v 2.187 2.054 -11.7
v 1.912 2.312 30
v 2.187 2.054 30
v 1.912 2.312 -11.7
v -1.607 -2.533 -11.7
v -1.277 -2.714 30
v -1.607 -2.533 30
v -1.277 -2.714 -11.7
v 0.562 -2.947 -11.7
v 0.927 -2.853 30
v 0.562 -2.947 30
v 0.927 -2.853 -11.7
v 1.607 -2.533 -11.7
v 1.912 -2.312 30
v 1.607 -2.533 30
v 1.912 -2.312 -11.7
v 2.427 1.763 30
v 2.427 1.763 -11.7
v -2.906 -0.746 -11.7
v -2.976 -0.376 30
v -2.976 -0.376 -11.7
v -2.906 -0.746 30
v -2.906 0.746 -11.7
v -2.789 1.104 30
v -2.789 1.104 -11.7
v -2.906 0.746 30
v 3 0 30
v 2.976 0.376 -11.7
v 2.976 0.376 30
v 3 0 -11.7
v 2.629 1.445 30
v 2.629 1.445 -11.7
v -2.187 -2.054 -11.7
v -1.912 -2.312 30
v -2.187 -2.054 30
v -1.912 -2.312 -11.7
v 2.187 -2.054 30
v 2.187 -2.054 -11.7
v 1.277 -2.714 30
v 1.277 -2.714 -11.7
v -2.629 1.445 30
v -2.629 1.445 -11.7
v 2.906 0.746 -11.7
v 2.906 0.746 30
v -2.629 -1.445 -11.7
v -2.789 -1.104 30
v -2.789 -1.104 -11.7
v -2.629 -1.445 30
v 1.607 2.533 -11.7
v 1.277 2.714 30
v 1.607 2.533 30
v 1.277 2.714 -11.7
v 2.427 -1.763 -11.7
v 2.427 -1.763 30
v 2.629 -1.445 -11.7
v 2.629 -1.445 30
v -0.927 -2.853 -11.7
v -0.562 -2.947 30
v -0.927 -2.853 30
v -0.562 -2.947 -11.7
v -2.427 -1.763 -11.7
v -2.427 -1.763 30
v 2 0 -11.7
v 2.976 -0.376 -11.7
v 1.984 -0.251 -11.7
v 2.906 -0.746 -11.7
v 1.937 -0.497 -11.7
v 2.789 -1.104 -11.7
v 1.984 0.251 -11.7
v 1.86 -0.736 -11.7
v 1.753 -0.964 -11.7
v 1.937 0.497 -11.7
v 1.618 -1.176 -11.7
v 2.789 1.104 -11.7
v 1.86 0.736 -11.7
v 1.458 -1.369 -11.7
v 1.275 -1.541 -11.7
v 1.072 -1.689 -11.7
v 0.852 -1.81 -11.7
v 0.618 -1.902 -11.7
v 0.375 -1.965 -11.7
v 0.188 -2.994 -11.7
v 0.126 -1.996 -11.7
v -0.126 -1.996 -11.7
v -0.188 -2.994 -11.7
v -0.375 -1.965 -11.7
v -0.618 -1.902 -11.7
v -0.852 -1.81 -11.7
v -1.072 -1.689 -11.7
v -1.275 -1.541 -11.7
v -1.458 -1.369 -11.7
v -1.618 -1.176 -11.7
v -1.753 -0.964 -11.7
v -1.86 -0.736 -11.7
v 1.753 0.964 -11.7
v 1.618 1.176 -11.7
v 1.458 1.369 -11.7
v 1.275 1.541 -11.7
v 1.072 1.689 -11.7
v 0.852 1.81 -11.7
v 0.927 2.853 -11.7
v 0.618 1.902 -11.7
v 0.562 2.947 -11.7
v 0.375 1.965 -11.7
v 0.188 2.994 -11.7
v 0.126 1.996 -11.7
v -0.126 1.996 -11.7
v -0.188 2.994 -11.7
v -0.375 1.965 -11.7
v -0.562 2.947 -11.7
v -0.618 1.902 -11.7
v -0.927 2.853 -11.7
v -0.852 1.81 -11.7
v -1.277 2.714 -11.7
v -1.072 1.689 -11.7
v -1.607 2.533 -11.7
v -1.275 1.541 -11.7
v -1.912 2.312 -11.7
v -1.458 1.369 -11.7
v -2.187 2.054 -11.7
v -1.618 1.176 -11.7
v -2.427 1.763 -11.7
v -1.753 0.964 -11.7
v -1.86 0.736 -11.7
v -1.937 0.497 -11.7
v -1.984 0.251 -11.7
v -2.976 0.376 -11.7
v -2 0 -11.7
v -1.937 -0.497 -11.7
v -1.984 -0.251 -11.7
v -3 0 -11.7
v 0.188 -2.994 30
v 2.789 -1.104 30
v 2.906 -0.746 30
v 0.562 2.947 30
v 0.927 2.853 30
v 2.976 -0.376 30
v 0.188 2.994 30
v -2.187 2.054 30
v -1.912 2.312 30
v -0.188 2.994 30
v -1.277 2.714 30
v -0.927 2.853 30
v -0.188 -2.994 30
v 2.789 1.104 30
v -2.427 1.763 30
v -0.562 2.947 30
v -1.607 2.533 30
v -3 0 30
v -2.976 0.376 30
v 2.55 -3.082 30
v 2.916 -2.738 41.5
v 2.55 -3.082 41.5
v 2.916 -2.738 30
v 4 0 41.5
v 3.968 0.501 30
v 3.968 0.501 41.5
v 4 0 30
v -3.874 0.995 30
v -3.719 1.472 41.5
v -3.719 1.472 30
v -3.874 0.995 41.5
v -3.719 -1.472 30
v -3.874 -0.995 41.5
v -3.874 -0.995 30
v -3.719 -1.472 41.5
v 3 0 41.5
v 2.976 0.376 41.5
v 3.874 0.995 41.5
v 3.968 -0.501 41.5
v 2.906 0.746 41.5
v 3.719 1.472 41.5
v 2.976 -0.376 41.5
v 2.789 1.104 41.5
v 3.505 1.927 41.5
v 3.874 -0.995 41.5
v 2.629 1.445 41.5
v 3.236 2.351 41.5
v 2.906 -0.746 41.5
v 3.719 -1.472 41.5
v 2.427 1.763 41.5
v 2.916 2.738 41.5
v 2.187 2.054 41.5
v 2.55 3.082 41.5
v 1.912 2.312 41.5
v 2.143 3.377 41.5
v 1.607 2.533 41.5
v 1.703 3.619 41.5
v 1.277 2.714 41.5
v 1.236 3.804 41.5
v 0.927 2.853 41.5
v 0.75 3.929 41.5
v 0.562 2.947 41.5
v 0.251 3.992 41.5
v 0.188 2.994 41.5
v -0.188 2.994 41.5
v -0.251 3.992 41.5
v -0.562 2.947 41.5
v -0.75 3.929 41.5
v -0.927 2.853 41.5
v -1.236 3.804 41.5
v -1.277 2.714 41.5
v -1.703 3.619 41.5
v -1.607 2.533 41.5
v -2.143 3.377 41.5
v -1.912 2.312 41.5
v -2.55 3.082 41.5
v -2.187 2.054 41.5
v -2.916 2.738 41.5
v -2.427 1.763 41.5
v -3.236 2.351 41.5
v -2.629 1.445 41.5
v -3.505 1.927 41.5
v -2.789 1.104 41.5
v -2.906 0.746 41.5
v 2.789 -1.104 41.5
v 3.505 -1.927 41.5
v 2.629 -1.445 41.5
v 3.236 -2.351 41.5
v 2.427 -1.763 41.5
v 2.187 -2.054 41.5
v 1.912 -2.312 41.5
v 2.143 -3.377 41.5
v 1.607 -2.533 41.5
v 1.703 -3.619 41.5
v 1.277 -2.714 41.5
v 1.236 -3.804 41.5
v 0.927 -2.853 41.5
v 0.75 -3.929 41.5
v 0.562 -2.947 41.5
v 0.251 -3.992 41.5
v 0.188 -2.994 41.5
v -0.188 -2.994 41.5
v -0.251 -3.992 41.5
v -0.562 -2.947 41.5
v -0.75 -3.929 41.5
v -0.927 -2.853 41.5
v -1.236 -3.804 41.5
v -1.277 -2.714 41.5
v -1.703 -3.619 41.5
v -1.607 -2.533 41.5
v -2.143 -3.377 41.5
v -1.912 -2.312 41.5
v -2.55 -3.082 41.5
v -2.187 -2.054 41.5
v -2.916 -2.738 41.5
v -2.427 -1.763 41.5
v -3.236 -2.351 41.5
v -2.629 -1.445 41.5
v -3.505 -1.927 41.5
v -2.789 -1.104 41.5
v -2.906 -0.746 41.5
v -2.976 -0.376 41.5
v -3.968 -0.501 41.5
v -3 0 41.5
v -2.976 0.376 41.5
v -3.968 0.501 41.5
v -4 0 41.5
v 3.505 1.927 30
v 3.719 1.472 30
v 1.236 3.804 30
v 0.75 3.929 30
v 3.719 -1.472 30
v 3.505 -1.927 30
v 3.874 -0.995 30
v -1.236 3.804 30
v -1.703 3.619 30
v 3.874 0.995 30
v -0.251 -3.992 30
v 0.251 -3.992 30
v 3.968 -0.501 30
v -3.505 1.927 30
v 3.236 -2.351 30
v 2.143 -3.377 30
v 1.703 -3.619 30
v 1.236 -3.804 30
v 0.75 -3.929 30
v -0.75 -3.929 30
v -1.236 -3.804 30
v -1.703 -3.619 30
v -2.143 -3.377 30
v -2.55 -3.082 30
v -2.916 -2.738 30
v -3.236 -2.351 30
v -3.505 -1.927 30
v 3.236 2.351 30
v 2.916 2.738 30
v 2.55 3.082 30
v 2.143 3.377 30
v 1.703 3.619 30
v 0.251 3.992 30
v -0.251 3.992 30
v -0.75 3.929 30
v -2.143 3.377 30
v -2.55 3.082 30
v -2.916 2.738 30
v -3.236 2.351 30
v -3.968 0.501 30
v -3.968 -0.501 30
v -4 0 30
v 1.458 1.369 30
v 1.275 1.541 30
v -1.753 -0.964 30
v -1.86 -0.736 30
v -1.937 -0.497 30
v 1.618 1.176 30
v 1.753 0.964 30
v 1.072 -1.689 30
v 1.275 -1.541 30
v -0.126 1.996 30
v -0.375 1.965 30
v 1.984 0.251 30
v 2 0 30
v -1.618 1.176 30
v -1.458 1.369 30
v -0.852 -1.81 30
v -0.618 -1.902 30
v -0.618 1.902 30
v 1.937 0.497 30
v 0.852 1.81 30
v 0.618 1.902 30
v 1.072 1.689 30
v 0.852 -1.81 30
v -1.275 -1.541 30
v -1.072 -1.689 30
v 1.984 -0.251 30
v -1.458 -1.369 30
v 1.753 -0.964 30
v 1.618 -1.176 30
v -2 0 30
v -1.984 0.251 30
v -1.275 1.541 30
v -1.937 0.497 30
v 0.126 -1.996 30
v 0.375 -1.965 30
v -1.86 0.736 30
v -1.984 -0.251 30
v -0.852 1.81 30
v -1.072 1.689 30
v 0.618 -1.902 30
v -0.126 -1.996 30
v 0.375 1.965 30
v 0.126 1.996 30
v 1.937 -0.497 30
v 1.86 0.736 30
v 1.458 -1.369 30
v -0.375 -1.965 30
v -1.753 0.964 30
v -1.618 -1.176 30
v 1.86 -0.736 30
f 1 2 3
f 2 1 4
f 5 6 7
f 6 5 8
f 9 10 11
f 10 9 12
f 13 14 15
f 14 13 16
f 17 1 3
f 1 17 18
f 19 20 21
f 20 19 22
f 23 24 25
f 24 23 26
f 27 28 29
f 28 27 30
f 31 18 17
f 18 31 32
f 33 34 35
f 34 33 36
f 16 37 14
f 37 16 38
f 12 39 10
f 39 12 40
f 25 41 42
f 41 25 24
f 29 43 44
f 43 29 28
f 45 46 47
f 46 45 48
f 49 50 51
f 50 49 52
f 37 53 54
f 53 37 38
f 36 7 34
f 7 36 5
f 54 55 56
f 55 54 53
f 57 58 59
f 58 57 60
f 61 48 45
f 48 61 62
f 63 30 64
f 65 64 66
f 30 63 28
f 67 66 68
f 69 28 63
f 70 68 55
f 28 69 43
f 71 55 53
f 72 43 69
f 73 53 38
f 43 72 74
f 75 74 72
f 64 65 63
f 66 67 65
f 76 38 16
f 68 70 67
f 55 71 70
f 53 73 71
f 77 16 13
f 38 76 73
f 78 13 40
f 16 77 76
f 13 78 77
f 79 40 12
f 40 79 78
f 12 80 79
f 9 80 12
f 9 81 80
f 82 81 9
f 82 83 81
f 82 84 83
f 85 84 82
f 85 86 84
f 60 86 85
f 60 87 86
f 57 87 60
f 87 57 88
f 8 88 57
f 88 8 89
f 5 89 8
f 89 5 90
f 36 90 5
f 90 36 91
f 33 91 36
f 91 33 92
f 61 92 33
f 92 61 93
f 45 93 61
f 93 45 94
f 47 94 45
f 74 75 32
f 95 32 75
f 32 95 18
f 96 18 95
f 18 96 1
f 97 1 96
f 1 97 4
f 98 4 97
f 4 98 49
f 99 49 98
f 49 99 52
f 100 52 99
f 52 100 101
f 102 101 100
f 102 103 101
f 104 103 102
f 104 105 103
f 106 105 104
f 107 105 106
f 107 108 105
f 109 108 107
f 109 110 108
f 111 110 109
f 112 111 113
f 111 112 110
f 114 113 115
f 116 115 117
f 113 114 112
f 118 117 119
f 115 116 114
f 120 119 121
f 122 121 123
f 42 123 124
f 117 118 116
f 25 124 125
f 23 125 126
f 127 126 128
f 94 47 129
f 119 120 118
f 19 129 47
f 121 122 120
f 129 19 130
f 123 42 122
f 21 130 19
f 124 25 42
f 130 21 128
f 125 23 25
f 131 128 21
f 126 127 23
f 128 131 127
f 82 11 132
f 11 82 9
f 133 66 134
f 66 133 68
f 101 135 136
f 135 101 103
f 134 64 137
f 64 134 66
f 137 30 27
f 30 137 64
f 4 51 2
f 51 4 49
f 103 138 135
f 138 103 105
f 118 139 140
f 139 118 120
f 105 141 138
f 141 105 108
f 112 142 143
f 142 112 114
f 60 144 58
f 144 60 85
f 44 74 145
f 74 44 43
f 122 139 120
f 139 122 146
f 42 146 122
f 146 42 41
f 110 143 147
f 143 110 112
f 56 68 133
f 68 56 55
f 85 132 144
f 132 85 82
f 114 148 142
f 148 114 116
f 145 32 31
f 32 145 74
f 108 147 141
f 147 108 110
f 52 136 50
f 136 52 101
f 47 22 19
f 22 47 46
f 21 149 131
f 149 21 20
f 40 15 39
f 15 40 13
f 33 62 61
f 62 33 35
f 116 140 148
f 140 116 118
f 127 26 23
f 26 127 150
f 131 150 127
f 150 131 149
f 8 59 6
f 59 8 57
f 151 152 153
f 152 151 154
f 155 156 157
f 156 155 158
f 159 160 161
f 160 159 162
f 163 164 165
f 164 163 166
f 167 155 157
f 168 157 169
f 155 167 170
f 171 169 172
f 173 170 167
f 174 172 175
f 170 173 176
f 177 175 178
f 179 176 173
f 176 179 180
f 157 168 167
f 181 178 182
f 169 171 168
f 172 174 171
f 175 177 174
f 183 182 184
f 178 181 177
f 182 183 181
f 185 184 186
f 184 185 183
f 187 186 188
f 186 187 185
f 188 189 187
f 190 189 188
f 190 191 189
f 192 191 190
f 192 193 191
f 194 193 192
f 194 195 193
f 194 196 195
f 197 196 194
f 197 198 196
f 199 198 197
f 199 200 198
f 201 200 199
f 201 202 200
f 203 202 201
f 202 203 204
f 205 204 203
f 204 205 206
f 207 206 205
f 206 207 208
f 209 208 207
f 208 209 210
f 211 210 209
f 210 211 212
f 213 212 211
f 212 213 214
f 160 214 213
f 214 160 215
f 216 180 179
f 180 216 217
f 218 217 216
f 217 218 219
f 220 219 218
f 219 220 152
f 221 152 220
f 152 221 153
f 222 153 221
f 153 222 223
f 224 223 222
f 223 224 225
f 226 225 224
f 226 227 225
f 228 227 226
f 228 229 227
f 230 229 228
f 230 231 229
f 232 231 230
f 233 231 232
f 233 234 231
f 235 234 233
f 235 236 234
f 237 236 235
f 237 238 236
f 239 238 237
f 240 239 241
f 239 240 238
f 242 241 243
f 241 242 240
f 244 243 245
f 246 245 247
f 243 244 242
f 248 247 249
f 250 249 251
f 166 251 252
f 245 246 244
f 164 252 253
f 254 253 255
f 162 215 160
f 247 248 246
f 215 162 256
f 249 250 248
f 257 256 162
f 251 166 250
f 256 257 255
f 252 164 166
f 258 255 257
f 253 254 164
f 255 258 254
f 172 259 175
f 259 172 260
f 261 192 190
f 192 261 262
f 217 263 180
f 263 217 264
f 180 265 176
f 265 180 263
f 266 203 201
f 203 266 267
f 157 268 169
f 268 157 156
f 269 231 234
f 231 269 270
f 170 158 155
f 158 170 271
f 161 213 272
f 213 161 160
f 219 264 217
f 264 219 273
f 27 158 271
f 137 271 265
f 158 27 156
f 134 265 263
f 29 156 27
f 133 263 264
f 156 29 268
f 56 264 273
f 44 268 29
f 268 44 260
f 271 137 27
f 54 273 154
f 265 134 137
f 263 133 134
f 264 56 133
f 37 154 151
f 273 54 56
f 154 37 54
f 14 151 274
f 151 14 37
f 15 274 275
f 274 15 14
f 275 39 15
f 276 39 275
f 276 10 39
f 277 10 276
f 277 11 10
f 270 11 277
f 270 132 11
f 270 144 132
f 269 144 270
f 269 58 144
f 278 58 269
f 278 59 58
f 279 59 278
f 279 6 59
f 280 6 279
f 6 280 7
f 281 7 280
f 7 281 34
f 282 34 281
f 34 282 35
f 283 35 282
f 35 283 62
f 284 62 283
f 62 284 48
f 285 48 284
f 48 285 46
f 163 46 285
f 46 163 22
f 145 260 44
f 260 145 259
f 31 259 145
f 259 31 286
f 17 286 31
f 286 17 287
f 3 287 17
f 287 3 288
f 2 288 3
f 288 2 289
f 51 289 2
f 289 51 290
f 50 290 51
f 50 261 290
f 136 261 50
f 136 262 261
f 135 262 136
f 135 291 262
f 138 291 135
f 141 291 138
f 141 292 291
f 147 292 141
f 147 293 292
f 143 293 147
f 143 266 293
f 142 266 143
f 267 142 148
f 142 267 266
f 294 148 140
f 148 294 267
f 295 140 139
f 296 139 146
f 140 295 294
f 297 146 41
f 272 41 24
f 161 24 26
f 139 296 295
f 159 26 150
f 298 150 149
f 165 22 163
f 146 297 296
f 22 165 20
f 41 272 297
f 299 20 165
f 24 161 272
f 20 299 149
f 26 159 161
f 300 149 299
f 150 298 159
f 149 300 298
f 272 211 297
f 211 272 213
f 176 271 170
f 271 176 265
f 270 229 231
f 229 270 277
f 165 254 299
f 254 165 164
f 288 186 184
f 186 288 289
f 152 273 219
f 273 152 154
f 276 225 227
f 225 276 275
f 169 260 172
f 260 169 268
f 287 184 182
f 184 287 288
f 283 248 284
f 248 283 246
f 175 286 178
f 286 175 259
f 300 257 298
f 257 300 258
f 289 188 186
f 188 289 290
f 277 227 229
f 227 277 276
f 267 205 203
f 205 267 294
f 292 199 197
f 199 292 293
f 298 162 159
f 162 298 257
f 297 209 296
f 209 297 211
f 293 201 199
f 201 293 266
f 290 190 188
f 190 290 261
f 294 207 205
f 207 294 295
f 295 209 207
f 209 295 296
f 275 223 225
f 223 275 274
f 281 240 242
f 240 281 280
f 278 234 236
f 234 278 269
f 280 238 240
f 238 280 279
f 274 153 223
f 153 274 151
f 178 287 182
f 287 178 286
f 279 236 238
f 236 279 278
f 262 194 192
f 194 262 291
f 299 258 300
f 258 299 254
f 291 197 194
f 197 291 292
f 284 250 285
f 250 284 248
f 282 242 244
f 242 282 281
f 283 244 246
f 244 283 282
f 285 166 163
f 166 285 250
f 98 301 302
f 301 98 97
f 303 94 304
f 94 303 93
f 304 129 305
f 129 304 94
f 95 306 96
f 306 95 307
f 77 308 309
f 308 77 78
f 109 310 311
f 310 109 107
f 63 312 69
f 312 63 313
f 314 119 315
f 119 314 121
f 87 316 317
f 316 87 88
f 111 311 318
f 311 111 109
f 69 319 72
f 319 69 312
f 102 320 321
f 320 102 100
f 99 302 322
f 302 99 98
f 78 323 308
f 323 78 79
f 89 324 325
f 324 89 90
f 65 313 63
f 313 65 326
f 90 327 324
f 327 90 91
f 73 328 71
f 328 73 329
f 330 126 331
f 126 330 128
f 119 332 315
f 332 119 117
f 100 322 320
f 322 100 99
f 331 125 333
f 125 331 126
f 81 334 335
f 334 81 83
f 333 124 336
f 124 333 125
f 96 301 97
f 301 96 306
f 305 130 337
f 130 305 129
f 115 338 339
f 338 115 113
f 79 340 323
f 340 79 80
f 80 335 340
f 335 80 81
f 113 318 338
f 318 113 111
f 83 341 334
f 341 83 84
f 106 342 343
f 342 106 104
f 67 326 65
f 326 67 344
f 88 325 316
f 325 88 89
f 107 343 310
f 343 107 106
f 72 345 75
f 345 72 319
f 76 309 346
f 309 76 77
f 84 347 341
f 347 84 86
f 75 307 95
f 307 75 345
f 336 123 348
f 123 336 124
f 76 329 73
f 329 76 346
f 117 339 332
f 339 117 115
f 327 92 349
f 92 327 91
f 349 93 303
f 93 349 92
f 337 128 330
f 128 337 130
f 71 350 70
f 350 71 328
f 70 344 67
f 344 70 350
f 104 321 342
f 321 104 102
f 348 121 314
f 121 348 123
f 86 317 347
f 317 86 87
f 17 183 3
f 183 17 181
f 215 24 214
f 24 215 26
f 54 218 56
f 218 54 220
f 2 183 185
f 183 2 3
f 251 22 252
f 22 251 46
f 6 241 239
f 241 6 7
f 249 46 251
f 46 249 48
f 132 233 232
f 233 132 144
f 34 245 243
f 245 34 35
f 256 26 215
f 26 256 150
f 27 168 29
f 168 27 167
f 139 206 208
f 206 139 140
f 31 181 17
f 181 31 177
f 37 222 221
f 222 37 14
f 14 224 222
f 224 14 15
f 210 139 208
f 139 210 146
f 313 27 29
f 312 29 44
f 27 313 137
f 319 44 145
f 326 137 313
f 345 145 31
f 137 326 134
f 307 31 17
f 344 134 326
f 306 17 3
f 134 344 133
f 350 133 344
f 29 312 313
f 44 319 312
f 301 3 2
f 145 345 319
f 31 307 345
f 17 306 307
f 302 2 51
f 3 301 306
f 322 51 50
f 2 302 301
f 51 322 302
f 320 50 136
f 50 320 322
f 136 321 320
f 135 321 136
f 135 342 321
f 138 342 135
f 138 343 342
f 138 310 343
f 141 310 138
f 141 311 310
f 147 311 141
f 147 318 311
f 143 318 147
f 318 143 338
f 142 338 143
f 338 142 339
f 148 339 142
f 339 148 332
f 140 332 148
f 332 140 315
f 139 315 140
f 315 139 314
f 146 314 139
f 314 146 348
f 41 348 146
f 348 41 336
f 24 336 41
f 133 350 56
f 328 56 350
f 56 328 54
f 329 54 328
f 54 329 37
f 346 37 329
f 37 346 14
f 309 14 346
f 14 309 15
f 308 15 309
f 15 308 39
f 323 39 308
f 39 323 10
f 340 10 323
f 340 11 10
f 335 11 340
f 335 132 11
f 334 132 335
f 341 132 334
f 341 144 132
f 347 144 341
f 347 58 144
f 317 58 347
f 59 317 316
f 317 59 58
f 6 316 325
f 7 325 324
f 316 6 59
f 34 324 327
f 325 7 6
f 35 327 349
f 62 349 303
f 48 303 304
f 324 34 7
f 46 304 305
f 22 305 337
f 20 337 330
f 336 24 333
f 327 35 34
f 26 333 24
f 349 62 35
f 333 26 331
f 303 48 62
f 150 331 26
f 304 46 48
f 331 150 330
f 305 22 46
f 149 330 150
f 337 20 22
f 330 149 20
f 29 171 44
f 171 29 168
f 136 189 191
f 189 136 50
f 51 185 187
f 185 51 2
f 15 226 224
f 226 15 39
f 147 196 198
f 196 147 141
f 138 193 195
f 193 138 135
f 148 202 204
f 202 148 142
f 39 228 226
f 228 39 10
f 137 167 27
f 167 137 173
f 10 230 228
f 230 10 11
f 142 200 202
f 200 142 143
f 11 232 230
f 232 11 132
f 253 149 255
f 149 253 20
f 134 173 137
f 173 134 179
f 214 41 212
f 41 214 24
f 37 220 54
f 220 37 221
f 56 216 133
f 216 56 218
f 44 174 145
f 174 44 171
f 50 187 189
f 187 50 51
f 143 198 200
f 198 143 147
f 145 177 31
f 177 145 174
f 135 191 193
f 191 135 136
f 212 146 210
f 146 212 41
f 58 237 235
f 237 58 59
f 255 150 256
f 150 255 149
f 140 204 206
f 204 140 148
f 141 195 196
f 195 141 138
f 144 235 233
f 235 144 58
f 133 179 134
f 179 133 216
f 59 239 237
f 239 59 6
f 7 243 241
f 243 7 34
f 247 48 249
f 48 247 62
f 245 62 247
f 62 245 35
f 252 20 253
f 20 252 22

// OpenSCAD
// file: variables.scad
$fn = 50;
//chambres

//globol

decal = 5; //decalage global chambres
lg = 310; //longueur totale
lag = 60; //largeur totae
ep = 1.5; //epaisseur plak
etv = 19; // ecart vert touches
eth = 14; //ecrat hor touches
nb = 15; //nombre de touches

//plaque dessus

hpd = 40; //hauteur plaque dessus
dth = 8; //diametre des trous pl haut
dtb = 6; //diametre des trous pl bas

//include <plaque_dessus.scad>

//tubes 

dtige=4; //diametre tige bouton
dtub = 6; //dimatre tube 
drtub = 8; //diametre tube ressort
hrtub = 10; //hauteur ressort tube
hbtub = 14; //hauteur du bas du tube

//include <tubes.scad>

//chambre

htc=10;//hauteur chambres
epa = 2; //epaisseur ailettes
epc=3; //grosse epaisseur chmbre

long0=etv-drtub;
long00=etv-drtub-ep*2;
long000=etv+etv/2;
long1=lag/2-drtub/2-epc-epc/2;
long2=lag/2+epc/2+drtub/2;

longb = 10; //largueur basse ailette
longh = 5; //largeur haute ailette

lab = lag-longb*2;


//plaque dessus ici a cause des variables des chambres


//tigettes

epe = 6; //epaisseur escalier
escalier = 3; //ecart de hauteur des touches
htig = hpd+epe;
etouch = 3; //epaisseur touche    
diat = 15; // diametre de la touche
//coté droit



echo();
echo();
echo();
echo();
echo("***********************");
echo("long000 aka inter cloisons = ", long000);
echo("long0 fond des cloisons = ", long0);
echo("long1 base ailette centrale = ", long1);
echo("long2 base ailette grande = ", long2);




echo("*********************** ");
echo();
echo();


hypo = sqrt((longb-longh)^2 + hpd^2);
echo("hypo" ,hypo);
cosin = hpd/hypo;
echo("cos alpha",cosin);
angle = acos(cosin);
echo("angle",angle);



//reservoir d'air


htr = 8;



//plaques ltérales

hhtt=37; //hauteur première plaque

//include <plaques_laterales.scad>

//plaques internes

//plaque intermediaire ou bout de bois


hauteur = hpd-hrtub;
echo("hauteur" , hauteur);
hypopo = 1 / (cos(angle) / hauteur);
hypopopo = 1 / (cos(angle) / hpd);
echo("hypopo", hypopo);
coop = sin(angle) * hypopo;
echo("coop", coop);

//plaques laterale interne
// main file
include <variables.scad>


difference(){    
    
union(){
translate([0,0,-hrtub-ep-0.2])
cylinder(hpd+ep*2,d=dtub); //tube centre
translate([0,0,hpd-hrtub])
cylinder(hrtub+ep,d=drtub); //tube haut
}

union(){
translate([0,0,-hrtub-ep-0.5])
cylinder(hpd+ep*2,d=dtige);  //centre
translate([0,0,hpd-hrtub])
cylinder(hrtub+ep+0.2,d=dtub);  //haut
}}
